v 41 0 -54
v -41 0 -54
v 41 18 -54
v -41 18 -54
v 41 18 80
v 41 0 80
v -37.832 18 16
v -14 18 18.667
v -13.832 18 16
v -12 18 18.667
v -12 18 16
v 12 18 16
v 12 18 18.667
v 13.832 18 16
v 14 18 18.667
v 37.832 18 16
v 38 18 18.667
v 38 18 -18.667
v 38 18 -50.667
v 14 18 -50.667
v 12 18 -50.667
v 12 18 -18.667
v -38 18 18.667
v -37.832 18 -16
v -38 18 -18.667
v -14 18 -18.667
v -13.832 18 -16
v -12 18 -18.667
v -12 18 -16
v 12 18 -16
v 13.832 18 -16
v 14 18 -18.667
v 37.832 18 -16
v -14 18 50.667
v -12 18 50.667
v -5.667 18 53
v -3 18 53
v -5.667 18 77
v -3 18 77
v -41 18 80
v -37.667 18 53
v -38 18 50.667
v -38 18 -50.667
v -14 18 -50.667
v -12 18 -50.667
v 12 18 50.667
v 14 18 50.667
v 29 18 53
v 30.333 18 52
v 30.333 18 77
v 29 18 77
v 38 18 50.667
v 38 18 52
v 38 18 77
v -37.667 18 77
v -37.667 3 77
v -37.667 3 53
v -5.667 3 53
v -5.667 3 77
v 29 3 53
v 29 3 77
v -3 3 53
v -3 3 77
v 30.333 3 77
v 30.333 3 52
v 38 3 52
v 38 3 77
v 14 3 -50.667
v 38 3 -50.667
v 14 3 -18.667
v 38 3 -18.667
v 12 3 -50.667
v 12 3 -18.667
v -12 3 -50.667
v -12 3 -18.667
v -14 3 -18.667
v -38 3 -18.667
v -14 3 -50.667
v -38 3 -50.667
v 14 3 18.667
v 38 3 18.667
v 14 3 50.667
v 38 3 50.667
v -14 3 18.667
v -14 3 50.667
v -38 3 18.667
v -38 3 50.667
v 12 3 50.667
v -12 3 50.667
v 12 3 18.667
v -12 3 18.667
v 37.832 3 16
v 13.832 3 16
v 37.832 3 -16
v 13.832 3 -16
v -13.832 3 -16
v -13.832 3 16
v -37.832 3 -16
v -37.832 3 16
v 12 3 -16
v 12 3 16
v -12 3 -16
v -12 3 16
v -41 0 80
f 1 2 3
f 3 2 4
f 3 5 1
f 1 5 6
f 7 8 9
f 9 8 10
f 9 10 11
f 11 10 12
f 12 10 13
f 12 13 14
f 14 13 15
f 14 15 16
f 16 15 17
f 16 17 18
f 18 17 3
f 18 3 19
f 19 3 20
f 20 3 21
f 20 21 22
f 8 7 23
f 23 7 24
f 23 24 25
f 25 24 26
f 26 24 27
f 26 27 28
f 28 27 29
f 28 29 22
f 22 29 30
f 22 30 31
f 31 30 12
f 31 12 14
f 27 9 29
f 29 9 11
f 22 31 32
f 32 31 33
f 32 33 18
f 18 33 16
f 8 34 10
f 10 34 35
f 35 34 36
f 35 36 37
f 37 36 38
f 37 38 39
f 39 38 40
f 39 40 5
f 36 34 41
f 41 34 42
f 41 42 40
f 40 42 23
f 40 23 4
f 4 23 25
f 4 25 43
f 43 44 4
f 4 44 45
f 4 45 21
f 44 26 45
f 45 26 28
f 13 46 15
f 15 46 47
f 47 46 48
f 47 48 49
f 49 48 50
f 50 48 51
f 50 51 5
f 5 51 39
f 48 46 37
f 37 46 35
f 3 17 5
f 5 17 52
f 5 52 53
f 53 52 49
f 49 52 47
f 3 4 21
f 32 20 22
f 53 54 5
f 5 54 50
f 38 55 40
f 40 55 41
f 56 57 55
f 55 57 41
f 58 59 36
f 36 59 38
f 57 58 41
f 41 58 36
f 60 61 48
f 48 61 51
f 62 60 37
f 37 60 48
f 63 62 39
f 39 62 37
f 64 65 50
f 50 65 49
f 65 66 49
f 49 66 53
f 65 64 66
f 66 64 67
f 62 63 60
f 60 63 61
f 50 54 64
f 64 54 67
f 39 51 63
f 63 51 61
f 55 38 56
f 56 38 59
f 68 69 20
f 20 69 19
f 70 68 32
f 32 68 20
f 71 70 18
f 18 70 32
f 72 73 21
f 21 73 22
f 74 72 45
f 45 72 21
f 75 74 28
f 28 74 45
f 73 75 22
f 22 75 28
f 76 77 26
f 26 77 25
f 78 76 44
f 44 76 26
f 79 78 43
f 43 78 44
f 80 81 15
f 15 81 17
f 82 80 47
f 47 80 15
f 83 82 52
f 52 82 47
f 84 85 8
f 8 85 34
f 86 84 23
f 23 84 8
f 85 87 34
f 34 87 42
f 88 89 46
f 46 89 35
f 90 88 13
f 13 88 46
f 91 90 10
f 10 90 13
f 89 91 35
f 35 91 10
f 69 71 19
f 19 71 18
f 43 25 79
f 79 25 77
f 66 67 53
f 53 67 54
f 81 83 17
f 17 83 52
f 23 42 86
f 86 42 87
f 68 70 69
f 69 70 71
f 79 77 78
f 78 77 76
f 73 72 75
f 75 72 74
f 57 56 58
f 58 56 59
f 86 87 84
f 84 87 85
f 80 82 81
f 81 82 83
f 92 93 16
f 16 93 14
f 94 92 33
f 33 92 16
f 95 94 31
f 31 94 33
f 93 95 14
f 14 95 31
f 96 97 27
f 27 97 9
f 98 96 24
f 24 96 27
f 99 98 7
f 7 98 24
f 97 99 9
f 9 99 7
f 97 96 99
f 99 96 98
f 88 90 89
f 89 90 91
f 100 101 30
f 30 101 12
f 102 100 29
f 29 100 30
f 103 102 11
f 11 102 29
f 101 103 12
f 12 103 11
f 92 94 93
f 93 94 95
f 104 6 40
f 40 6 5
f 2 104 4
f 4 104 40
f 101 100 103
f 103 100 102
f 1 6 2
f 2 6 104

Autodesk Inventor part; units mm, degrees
ref_plane "YZ Plane" through (0, 0, 0) normal (1, 0, 0) x (0, 1, 0)
ref_plane "XZ Plane" through (0, 0, 0) normal (0, 1, 0) x (-1, 0, 0)
ref_plane "XY Plane" through (0, 0, 0) normal (0, 0, 1) x (1, 0, 0)
sketch "Эскиз1" plane through (0, 0, 0) normal (0, 1, 0) x (-1, 0, 0)
  line L0 (-41, -75) -> (41, -75)
  line L1 (41, -75) -> (41, 75)
  line L2 (41, 75) -> (-41, 75)
  line L3 (-41, 75) -> (-41, -75)
  line L4 (-41, -75) -> (41, 75) construction
  line L5 (41, -75) -> (-41, 75) construction
  line L6 (41, 75) -> (-41, 75)
  line L7 (-41, 75) -> (-41, 80)
  line L8 (-41, 80) -> (41, 80)
  line L9 (41, 80) -> (41, 75)
  point P0 (0, 0)
  point P1 (-45, 75)
  dimension "d0" = 150
  dimension "d1" = 82
  dimension "d34" = 5
extrude "Выдавливание1" add sketch "Эскиз1" along normal blind 3
sketch "Эскиз2" plane through (0, 3, 0) normal (0, 1, 0) x (1, 0, 0)
  line L0 (41, 75) -> (-41, 75)
  line L1 (43.9412, 73.2353) -> (-45, -75) construction
  line L2 (-45, 75) -> (45, -75) construction
  line L3 (38, 67.4874) -> (-38, 67.4874)
  line L4 (-38, 67.4874) -> (-38, -67.4874)
  line L5 (38, -67.4874) -> (38, 67.4874)
  line L6 (38, 67.4874) -> (-38, -67.4874) construction
  line L7 (-38, 67.4874) -> (38, -67.4874) construction
  line L8 (40.7632, -80) -> (-41, -80)
  line L9 (-38, -77) -> (-38, -67.4874)
  line L10 (41, -80) -> (41, 75) projected
  line L11 (41, -80) -> (-41, -80)
  line L12 (-41, 75) -> (-41, -80) projected
  line L13 (-41, -80) -> (41, -80)
  line L14 (38, -77) -> (-38, -77)
  line L15 (-41, -77) -> (-41, -80)
  line L16 (-41, -77) -> (-41, 75)
  line L17 (41, -80) -> (41, 75)
  line L18 (38, -67.4874) -> (38, -77)
  point P0 (0, 0)
  dimension "d38" = 3
  dimension "d39" = 3
extrude "Выдавливание2" add sketch "Эскиз2" along normal blind 15
sketch "Эскиз3" plane through (0, 3, 0) normal (0, 1, 0) x (1, 0, 0)
  line L0 (12, -16) -> (-12, -16)
  line L1 (-12, -16) -> (-12, 16)
  line L2 (-12, 16) -> (12, 16)
  line L3 (12, 16) -> (12, -16)
  line L4 (12, -16) -> (-12, 16) construction
  line L5 (-12, -16) -> (12, 16) construction
  line L6 (13, -17.3333) -> (-13, -17.3333)
  line L7 (-13, -17.3333) -> (-13, 17.3333)
  line L8 (-13, 17.3333) -> (13, 17.3333)
  line L9 (13, 17.3333) -> (13, -17.3333)
  line L10 (13, -17.3333) -> (-13, 17.3333) construction
  line L11 (-13, -17.3333) -> (13, 17.3333) construction
  point P0 (0, 0)
  dimension "d8" = 24
  dimension "d9" = 32
  dimension "d10" = 26
extrude "Выдавливание3" add sketch "Эскиз3" along normal blind 15
sketch "Эскиз4" plane through (0, 3, 0) normal (0, 1, 0) x (1, 0, 0)
  line L0 (13, 17.3333) -> (-13, 17.3333) projected
  line L1 (-13, 17.3333) -> (-39, 17.3333)
  line L2 (-39, 17.3333) -> (-39, -17.3333)
  line L3 (-39, -17.3333) -> (-13, -17.3333)
  line L4 (-13, -17.3333) -> (-13, 17.3333)
  line L5 (-13.8323, -16) -> (-37.8323, -16)
  line L6 (-37.8323, -16) -> (-37.8323, 16)
  line L7 (-37.8323, 16) -> (-13.8323, 16)
  line L8 (-13.8323, 16) -> (-13.8323, -16)
  line L9 (-13.8323, -16) -> (-37.8323, 16) construction
  line L10 (-37.8323, -16) -> (-13.8323, 16) construction
  line L11 (0, 0) -> (0, 60.0549)
  line L12 (13, 17.3333) -> (39, 17.3333)
  line L13 (39, 17.3333) -> (39, -17.3333)
  line L14 (39, -17.3333) -> (13, -17.3333)
  line L15 (13, -17.3333) -> (13, 17.3333)
  line L16 (13.8323, -16) -> (37.8323, -16)
  line L17 (37.8323, -16) -> (37.8323, 16)
  line L18 (37.8323, 16) -> (13.8323, 16)
  line L19 (13.8323, 16) -> (13.8323, -16)
  line L20 (13.8323, -16) -> (37.8323, 16) construction
  line L21 (37.8323, -16) -> (13.8323, 16) construction
  point P0 (-25.8323, 0)
  point P1 (25.8323, 0)
  dimension "d13" = 26
  dimension "d14" = 24
  dimension "d15" = 32
extrude "Выдавливание4" add sketch "Эскиз4" along normal blind 15
sketch "Эскиз6" plane through (0, 3, 0) normal (0, 1, 0) x (1, 0, 0)
  line L0 (38, 17.3333) -> (-38, 17.3333) projected
  line L1 (-39, 17.3333) -> (39, 17.3333)
  line L2 (39, 17.3333) -> (39, 52)
  line L3 (39, 52) -> (-39, 52)
  line L4 (-39, 52) -> (-39, 17.3333)
  line L5 (-39, 17.3333) -> (-13, 17.3333)
  line L6 (-13, 17.3333) -> (-13, 52)
  line L7 (-13, 52) -> (-39, 52)
  line L8 (-39, 52) -> (-39, 17.3333)
  line L9 (-14, 50.6667) -> (-38, 50.6667)
  line L10 (-38, 50.6667) -> (-38, 18.6667)
  line L11 (-38, 18.6667) -> (-14, 18.6667)
  line L12 (-14, 18.6667) -> (-14, 50.6667)
  line L13 (-14, 50.6667) -> (-38, 18.6667) construction
  line L14 (-38, 50.6667) -> (-14, 18.6667) construction
  line L15 (-39, 17.3333) -> (-13, 52)
  line L16 (-39, 52) -> (-13, 17.3333)
  line L17 (0, 0) -> (0, 94.2737)
  line L18 (39, 52) -> (39, 17.3333)
  line L19 (39, 17.3333) -> (13, 17.3333)
  line L20 (13, 17.3333) -> (13, 52)
  line L21 (13, 52) -> (39, 52)
  line L22 (39, 52) -> (39, 17.3333)
  line L23 (14, 50.6667) -> (38, 50.6667)
  line L24 (38, 50.6667) -> (38, 18.6667)
  line L25 (38, 18.6667) -> (14, 18.6667)
  line L26 (14, 18.6667) -> (14, 50.6667)
  line L27 (14, 50.6667) -> (38, 18.6667) construction
  line L28 (38, 50.6667) -> (14, 18.6667) construction
  line L29 (39, 17.3333) -> (13, 52)
  line L30 (39, 52) -> (13, 17.3333)
  line L31 (-13, 17.3333) -> (13, 17.3333)
  line L32 (13, 17.3333) -> (13, 52)
  line L33 (13, 52) -> (-13, 52)
  line L34 (-13, 52) -> (-13, 17.3333)
  line L35 (12, 50.6667) -> (-12, 50.6667)
  line L36 (-12, 50.6667) -> (-12, 18.6667)
  line L37 (-12, 18.6667) -> (12, 18.6667)
  line L38 (12, 18.6667) -> (12, 50.6667)
  line L39 (12, 50.6667) -> (-12, 18.6667) construction
  line L40 (-12, 50.6667) -> (12, 18.6667) construction
  line L41 (0, 0) -> (-32.6399, 0)
  line L42 (39, -17.3333) -> (-39, -17.3333)
  line L43 (-39, -17.3333) -> (39, -17.3333)
  line L44 (39, -17.3333) -> (39, -52)
  line L45 (39, -52) -> (-39, -52)
  line L46 (-39, -52) -> (-39, -17.3333)
  line L47 (-39, -17.3333) -> (-13, -17.3333)
  line L48 (-13, -17.3333) -> (-13, -52)
  line L49 (-13, -52) -> (-39, -52)
  line L50 (-39, -52) -> (-39, -17.3333)
  line L51 (-14, -50.6667) -> (-38, -50.6667)
  line L52 (-38, -50.6667) -> (-38, -18.6667)
  line L53 (-38, -18.6667) -> (-14, -18.6667)
  line L54 (-14, -18.6667) -> (-14, -50.6667)
  line L55 (-14, -50.6667) -> (-38, -18.6667) construction
  line L56 (-38, -50.6667) -> (-14, -18.6667) construction
  line L57 (-39, -17.3333) -> (-13, -52)
  line L58 (-39, -52) -> (-13, -17.3333)
  line L59 (39, -17.3333) -> (13, -17.3333)
  line L60 (38, -18.6667) -> (14, -18.6667)
  line L61 (14, -50.6667) -> (38, -50.6667)
  line L62 (38, -50.6667) -> (38, -18.6667)
  line L63 (14, -18.6667) -> (14, -50.6667)
  line L64 (14, -50.6667) -> (38, -18.6667) construction
  line L65 (38, -50.6667) -> (14, -18.6667) construction
  line L66 (39, -17.3333) -> (13, -52)
  line L67 (39, -52) -> (39, -17.3333)
  line L68 (13, -52) -> (39, -52)
  line L69 (39, -52) -> (39, -17.3333)
  line L70 (39, -52) -> (13, -17.3333)
  line L71 (13, -17.3333) -> (13, -52)
  line L72 (-13, -17.3333) -> (13, -17.3333)
  line L73 (13, -17.3333) -> (13, -52)
  line L74 (13, -52) -> (-13, -52)
  line L75 (-13, -52) -> (-13, -17.3333)
  line L76 (12, -50.6667) -> (-12, -50.6667)
  line L77 (-12, -50.6667) -> (-12, -18.6667)
  line L78 (-12, -18.6667) -> (12, -18.6667)
  line L79 (12, -18.6667) -> (12, -50.6667)
  line L80 (12, -50.6667) -> (-12, -18.6667) construction
  line L81 (-12, -50.6667) -> (12, -18.6667) construction
  point P0 (-26, 34.6667)
  point P1 (26, 34.6667)
  point P2 (0, 34.6667)
  point P3 (-26, -34.6667)
  point P4 (26, -34.6667)
  point P5 (0, -34.6667)
  dimension "d18" = 34.6667
  dimension "d19" = 26
  dimension "d20" = 24
  dimension "d21" = 32
  dimension "d22" = 24
extrude "Выдавливание5" add sketch "Эскиз6" along normal blind 15 contours L0 L30 L25 L29 L1 | L0 L17 L37 L38 L35 L3 L20 | L20 L29 L26 L30 | L29 L24 L30 L2 | L0 L6 L3 L17 L35 L36 L37 | L3 L30 L23 L29 | L16 L12 L15 L6 | L0 L1 L15 L11 L16 | L15 L9 L16 L3 | L4 L16 L10 L15 | L66 L60 L70 L42 | L44 L70 L62 L66 | L71 L45 L48 L42 | L70 L63 L66 L71 | L45 L66 L61 L70 | L58 L53 L57 L42 | L48 L57 L54 L58 | L57 L52 L58 L46 | L45 L58 L51 L57
sketch "Эскиз7" plane through (0, 3, 0) normal (0, 1, 0) x (1, 0, 0)
  line L0 (-37.6667, -53) -> (-5.6667, -53)
  line L1 (-5.6667, -53) -> (-5.6667, -77)
  line L2 (-5.6667, -77) -> (-37.6667, -77)
  line L3 (-37.6667, -77) -> (-37.6667, -53)
  line L4 (-4.3333, -52) -> (-39, -52)
  line L5 (-39, -52) -> (-39, -78)
  line L6 (-39, -78) -> (-4.3333, -78)
  line L7 (-4.3333, -78) -> (-4.3333, -52)
  line L8 (-4.3333, -52) -> (-39, -78) construction
  line L9 (-39, -52) -> (-4.3333, -78) construction
  line L10 (-37.6667, -77) -> (-5.6667, -53)
  line L11 (-5.6667, -77) -> (-37.6667, -53)
  line L12 (-4.3333, -52) -> (30.3333, -52)
  line L13 (30.3333, -52) -> (30.3333, -78)
  line L14 (30.3333, -78) -> (-4.3333, -78)
  line L15 (-4.3333, -78) -> (-4.3333, -52)
  line L16 (29, -53) -> (-3, -53)
  line L17 (-3, -53) -> (-3, -77)
  line L18 (-3, -77) -> (29, -77)
  line L19 (29, -77) -> (29, -53)
  line L20 (29, -53) -> (-3, -77) construction
  line L21 (-3, -53) -> (29, -77) construction
  line L22 (-4.3333, -78) -> (30.3333, -52)
  line L23 (30.3333, -78) -> (-4.3333, -52)
  point P0 (0, 0)
  point P1 (-21.6667, -65)
  point P2 (13, -65)
  dimension "d25" = 24
  dimension "d26" = 32
  dimension "d27" = 26
  dimension "d29" = 34.6667
  dimension "d30" = 34.6667
  dimension "d31" = 32
extrude "Выдавливание6" add sketch "Эскиз7" along normal blind 15 contours L7 L6 L5 L4 | L23 L17 L22 L7 | L12 L22 L16 L23 | L22 L18 L23 L14 | L13 L23 L19 L22
sketch "Эскиз8" plane through (0, 18, 0) normal (0, 1, 0) x (1, 0, 0)
  line L0 (-41, 75) -> (-41, -80) projected
  line L1 (-41, 75) -> (41.8498, 75)
  line L2 (41.8498, 75) -> (41.8498, 52)
  line L3 (41.8498, 52) -> (-41, 52)
  line L4 (-41, 52) -> (-41, 75)
  point P0 (0, 0)
  dimension "d40" = 23
extrude "Выдавливание7" cut sketch "Эскиз8" against normal blind 500
sketch "Эскиз9" plane through (0, 18, 0) normal (0, 1, 0) x (1, 0, 0)
  line L0 (-41, 52) -> (-41, -80) projected
  line L1 (-41, 52) -> (41, 52)
  line L2 (41, 52) -> (41, 54)
  line L3 (41, 54) -> (-41, 54)
  line L4 (-41, 54) -> (-41, 52)
  point P0 (0, 0)
  dimension "d43" = 2
extrude "Выдавливание8" add sketch "Эскиз9" against normal up to surface (18 mm away)
properties part number "хранитель крпелений"
